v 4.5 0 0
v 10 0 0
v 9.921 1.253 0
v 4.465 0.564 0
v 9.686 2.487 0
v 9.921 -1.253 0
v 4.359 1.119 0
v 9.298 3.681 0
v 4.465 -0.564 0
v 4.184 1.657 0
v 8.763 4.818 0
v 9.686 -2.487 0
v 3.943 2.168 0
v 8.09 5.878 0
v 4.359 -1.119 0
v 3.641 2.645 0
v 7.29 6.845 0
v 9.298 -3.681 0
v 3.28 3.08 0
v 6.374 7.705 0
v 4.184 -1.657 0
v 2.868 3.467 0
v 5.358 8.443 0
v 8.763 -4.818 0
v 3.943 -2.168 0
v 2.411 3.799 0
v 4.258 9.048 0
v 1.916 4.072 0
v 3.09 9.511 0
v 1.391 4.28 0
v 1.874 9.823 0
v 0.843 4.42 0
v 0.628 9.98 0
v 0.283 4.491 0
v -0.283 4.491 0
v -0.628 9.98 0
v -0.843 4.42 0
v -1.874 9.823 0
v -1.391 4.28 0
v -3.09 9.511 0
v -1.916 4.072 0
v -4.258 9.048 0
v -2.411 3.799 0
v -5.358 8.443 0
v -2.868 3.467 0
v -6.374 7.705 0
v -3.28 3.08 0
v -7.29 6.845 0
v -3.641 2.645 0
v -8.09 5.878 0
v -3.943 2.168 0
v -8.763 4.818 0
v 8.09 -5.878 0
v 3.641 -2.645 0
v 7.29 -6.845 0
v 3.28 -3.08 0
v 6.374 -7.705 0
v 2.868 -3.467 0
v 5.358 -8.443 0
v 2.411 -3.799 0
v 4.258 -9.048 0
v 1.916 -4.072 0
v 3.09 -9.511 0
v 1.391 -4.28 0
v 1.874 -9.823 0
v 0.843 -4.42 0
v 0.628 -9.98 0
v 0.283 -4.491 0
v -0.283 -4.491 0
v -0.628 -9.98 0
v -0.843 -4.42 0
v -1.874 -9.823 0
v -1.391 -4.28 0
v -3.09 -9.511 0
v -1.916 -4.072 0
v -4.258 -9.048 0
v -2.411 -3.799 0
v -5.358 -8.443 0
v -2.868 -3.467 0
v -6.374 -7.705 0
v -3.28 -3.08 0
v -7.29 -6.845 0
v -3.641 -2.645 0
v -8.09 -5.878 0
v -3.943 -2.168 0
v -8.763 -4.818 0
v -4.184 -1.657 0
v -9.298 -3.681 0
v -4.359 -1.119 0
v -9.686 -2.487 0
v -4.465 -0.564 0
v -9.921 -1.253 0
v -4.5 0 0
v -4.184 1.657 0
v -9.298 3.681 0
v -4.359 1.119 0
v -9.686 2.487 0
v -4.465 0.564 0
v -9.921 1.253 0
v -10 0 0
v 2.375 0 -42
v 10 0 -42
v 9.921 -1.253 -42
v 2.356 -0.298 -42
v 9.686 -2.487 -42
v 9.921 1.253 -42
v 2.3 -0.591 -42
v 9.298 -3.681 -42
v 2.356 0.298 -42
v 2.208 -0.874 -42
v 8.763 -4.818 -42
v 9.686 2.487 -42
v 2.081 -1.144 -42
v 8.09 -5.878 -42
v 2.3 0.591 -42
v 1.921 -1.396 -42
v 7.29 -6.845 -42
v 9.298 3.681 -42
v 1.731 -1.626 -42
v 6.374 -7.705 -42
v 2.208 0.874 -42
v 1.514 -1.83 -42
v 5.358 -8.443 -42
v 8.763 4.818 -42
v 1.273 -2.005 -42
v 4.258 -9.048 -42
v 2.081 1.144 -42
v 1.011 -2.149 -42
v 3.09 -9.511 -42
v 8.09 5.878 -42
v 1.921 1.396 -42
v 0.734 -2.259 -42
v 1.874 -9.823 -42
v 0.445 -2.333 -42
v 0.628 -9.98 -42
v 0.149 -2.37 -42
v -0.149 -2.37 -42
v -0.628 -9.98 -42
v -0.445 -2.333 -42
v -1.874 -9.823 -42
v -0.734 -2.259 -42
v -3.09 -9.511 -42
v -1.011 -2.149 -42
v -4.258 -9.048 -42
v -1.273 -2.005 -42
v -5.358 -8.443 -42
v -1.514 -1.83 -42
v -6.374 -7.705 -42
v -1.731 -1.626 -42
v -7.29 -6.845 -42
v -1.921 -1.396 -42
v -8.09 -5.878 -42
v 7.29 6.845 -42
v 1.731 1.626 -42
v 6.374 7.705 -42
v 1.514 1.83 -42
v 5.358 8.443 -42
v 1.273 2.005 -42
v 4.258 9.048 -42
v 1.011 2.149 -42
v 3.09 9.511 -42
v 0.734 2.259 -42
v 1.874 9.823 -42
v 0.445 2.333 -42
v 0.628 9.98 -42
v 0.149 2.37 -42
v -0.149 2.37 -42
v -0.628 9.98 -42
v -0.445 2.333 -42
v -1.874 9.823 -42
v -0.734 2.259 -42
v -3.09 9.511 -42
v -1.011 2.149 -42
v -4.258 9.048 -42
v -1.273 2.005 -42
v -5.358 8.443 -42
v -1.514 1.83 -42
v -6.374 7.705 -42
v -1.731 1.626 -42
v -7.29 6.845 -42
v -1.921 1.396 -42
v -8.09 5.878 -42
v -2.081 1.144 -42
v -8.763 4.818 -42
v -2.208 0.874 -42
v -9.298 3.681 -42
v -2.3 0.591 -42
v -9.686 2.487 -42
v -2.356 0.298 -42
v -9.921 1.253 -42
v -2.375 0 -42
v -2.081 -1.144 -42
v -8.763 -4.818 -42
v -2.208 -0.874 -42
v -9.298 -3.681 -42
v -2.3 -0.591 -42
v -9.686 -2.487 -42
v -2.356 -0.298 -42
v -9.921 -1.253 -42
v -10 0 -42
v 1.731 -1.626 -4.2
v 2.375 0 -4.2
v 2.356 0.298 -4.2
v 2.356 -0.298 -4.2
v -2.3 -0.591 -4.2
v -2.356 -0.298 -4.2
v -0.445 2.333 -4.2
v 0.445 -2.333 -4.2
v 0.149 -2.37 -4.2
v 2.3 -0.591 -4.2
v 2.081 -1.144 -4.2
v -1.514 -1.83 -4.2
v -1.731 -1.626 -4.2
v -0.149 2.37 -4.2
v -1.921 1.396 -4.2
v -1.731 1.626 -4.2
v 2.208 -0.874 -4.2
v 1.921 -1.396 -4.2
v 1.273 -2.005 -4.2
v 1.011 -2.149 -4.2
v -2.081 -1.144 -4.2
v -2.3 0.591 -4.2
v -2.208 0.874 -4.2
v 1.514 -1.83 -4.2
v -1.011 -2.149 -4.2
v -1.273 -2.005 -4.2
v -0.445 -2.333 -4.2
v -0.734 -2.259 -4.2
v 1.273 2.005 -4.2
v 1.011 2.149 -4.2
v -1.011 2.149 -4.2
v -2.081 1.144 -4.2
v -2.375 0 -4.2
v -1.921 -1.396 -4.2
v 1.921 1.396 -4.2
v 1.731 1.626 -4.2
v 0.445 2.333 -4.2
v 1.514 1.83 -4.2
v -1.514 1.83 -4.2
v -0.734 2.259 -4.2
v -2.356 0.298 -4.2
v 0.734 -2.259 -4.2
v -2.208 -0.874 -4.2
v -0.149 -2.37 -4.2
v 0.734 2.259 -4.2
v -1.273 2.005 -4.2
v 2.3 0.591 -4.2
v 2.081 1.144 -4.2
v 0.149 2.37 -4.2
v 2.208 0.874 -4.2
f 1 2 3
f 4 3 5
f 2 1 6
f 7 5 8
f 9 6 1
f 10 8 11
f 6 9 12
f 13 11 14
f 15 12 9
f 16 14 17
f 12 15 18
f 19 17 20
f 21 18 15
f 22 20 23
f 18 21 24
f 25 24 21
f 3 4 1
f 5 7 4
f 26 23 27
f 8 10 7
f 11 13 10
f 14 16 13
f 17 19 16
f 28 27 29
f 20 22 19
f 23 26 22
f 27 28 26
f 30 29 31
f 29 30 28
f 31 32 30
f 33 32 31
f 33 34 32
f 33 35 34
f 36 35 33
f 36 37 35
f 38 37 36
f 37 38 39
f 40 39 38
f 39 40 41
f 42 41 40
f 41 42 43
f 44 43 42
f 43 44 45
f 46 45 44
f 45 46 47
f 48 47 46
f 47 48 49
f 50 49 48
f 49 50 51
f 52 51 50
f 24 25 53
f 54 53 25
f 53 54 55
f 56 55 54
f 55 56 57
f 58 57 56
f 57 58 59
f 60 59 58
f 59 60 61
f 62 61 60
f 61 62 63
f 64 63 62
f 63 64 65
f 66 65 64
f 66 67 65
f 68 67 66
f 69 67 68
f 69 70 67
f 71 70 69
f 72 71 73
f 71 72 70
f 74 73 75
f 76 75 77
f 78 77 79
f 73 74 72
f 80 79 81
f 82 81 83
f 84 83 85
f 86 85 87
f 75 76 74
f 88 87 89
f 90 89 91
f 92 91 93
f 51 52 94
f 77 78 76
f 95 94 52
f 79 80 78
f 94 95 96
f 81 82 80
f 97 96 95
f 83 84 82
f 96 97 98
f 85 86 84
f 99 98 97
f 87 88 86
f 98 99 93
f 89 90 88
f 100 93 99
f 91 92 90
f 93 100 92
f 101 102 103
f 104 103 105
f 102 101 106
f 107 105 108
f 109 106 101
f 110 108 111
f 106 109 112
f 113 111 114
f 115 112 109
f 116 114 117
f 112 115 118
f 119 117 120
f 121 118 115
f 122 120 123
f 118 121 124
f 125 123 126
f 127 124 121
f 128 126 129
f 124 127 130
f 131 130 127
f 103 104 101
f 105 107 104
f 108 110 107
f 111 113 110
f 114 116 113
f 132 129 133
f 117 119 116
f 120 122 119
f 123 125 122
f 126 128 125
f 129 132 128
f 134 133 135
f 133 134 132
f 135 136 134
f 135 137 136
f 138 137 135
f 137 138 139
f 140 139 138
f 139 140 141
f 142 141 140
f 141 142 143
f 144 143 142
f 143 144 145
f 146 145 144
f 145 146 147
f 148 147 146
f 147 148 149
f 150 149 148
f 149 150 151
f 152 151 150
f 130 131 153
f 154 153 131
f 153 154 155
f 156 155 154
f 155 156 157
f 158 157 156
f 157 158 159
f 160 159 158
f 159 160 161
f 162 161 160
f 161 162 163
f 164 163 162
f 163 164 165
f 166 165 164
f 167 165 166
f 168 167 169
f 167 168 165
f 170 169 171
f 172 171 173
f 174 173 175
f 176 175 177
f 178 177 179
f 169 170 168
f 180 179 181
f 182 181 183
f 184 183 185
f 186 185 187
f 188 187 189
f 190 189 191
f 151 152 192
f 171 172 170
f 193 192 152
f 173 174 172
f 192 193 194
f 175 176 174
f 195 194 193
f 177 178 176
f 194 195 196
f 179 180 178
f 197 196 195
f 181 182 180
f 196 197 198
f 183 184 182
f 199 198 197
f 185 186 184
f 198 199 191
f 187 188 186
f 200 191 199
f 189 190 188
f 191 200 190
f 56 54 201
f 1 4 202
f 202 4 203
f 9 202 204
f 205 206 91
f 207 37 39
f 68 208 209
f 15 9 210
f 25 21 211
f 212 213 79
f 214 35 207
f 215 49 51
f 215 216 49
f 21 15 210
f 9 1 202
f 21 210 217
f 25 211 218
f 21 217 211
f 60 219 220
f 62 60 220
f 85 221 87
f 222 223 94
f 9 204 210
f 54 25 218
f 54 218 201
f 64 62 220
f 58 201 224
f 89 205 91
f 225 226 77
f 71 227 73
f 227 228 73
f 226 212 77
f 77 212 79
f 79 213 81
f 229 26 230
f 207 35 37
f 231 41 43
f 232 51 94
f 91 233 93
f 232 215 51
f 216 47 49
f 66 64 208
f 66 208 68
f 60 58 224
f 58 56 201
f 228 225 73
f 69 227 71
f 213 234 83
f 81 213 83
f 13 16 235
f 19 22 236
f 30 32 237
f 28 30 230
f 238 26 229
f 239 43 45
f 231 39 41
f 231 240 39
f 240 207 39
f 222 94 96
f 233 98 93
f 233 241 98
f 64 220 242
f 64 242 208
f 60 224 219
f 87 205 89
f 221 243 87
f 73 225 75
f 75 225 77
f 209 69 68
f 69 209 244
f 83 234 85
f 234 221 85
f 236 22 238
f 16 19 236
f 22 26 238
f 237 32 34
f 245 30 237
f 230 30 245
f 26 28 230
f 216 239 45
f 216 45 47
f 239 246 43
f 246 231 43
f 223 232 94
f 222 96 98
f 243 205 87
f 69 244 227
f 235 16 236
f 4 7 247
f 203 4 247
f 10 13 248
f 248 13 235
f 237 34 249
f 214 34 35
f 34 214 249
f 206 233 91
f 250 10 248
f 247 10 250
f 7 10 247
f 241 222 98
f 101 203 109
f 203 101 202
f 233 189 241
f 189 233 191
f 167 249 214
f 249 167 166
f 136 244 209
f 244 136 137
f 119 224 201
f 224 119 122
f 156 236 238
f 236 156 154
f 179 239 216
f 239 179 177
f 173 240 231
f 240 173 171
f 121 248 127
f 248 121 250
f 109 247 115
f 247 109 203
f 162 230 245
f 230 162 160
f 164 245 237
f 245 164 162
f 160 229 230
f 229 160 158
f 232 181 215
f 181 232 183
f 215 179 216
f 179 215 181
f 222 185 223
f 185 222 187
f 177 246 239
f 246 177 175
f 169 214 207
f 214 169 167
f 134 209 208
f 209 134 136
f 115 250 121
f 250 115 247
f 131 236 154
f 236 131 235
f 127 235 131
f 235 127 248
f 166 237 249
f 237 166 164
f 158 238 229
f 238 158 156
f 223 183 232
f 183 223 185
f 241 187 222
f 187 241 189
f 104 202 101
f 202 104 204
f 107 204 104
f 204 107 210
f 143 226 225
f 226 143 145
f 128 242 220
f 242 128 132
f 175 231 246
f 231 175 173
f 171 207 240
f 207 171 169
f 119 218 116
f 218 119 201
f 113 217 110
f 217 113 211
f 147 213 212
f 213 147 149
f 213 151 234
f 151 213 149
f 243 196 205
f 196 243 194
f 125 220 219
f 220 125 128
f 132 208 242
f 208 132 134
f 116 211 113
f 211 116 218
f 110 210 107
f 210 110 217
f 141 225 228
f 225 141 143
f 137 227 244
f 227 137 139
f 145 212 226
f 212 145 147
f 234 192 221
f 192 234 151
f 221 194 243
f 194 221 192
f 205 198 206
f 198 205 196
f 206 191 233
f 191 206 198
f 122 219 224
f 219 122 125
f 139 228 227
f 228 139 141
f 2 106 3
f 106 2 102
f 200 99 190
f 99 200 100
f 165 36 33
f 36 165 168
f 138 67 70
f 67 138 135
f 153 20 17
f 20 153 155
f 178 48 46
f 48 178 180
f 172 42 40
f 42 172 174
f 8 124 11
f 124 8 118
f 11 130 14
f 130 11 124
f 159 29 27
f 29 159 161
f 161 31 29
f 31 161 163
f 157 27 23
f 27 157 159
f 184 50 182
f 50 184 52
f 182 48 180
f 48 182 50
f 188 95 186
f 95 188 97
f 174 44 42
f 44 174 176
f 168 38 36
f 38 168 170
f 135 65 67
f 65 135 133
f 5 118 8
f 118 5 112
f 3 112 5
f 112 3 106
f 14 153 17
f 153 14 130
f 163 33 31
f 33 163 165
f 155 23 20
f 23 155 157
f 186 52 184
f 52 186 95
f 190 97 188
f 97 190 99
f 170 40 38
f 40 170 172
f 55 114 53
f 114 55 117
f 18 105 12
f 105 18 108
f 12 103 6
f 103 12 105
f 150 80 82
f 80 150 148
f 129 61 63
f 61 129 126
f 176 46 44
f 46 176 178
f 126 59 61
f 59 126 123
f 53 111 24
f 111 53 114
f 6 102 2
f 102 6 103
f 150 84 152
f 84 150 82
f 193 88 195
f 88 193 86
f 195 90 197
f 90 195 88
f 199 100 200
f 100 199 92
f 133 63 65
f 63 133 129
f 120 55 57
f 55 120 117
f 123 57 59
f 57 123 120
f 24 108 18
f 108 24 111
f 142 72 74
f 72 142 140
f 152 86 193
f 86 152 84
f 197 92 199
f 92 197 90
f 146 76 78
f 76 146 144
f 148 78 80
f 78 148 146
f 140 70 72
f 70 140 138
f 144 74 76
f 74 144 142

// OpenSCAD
$fn = 50;


difference() {
	union() {
		translate(v = [0, 0, -42.0000000000]) {
			cylinder(h = 42, r = 10.0000000000);
		}
		cylinder(h = 0, r = 13.0000000000);
	}
	union() {
		translate(v = [0, 0, 0]) {
			rotate(a = [0, 0, 0]) {
				difference() {
					union() {
						#translate(v = [0, 0, -42.0000000000]) {
							cylinder(h = 42, r = 2.2500000000);
						}
						#translate(v = [0, 0, -4.2000000000]) {
							cylinder(h = 4.2000000000, r1 = 2.3750000000, r2 = 4.5000000000);
						}
						#translate(v = [0, 0, -42.0000000000]) {
							cylinder(h = 42, r = 2.3750000000);
						}
						#translate(v = [0, 0, -42.0000000000]) {
							cylinder(h = 42, r = 2.2500000000);
						}
					}
					union();
				}
			}
		}
	}
}
